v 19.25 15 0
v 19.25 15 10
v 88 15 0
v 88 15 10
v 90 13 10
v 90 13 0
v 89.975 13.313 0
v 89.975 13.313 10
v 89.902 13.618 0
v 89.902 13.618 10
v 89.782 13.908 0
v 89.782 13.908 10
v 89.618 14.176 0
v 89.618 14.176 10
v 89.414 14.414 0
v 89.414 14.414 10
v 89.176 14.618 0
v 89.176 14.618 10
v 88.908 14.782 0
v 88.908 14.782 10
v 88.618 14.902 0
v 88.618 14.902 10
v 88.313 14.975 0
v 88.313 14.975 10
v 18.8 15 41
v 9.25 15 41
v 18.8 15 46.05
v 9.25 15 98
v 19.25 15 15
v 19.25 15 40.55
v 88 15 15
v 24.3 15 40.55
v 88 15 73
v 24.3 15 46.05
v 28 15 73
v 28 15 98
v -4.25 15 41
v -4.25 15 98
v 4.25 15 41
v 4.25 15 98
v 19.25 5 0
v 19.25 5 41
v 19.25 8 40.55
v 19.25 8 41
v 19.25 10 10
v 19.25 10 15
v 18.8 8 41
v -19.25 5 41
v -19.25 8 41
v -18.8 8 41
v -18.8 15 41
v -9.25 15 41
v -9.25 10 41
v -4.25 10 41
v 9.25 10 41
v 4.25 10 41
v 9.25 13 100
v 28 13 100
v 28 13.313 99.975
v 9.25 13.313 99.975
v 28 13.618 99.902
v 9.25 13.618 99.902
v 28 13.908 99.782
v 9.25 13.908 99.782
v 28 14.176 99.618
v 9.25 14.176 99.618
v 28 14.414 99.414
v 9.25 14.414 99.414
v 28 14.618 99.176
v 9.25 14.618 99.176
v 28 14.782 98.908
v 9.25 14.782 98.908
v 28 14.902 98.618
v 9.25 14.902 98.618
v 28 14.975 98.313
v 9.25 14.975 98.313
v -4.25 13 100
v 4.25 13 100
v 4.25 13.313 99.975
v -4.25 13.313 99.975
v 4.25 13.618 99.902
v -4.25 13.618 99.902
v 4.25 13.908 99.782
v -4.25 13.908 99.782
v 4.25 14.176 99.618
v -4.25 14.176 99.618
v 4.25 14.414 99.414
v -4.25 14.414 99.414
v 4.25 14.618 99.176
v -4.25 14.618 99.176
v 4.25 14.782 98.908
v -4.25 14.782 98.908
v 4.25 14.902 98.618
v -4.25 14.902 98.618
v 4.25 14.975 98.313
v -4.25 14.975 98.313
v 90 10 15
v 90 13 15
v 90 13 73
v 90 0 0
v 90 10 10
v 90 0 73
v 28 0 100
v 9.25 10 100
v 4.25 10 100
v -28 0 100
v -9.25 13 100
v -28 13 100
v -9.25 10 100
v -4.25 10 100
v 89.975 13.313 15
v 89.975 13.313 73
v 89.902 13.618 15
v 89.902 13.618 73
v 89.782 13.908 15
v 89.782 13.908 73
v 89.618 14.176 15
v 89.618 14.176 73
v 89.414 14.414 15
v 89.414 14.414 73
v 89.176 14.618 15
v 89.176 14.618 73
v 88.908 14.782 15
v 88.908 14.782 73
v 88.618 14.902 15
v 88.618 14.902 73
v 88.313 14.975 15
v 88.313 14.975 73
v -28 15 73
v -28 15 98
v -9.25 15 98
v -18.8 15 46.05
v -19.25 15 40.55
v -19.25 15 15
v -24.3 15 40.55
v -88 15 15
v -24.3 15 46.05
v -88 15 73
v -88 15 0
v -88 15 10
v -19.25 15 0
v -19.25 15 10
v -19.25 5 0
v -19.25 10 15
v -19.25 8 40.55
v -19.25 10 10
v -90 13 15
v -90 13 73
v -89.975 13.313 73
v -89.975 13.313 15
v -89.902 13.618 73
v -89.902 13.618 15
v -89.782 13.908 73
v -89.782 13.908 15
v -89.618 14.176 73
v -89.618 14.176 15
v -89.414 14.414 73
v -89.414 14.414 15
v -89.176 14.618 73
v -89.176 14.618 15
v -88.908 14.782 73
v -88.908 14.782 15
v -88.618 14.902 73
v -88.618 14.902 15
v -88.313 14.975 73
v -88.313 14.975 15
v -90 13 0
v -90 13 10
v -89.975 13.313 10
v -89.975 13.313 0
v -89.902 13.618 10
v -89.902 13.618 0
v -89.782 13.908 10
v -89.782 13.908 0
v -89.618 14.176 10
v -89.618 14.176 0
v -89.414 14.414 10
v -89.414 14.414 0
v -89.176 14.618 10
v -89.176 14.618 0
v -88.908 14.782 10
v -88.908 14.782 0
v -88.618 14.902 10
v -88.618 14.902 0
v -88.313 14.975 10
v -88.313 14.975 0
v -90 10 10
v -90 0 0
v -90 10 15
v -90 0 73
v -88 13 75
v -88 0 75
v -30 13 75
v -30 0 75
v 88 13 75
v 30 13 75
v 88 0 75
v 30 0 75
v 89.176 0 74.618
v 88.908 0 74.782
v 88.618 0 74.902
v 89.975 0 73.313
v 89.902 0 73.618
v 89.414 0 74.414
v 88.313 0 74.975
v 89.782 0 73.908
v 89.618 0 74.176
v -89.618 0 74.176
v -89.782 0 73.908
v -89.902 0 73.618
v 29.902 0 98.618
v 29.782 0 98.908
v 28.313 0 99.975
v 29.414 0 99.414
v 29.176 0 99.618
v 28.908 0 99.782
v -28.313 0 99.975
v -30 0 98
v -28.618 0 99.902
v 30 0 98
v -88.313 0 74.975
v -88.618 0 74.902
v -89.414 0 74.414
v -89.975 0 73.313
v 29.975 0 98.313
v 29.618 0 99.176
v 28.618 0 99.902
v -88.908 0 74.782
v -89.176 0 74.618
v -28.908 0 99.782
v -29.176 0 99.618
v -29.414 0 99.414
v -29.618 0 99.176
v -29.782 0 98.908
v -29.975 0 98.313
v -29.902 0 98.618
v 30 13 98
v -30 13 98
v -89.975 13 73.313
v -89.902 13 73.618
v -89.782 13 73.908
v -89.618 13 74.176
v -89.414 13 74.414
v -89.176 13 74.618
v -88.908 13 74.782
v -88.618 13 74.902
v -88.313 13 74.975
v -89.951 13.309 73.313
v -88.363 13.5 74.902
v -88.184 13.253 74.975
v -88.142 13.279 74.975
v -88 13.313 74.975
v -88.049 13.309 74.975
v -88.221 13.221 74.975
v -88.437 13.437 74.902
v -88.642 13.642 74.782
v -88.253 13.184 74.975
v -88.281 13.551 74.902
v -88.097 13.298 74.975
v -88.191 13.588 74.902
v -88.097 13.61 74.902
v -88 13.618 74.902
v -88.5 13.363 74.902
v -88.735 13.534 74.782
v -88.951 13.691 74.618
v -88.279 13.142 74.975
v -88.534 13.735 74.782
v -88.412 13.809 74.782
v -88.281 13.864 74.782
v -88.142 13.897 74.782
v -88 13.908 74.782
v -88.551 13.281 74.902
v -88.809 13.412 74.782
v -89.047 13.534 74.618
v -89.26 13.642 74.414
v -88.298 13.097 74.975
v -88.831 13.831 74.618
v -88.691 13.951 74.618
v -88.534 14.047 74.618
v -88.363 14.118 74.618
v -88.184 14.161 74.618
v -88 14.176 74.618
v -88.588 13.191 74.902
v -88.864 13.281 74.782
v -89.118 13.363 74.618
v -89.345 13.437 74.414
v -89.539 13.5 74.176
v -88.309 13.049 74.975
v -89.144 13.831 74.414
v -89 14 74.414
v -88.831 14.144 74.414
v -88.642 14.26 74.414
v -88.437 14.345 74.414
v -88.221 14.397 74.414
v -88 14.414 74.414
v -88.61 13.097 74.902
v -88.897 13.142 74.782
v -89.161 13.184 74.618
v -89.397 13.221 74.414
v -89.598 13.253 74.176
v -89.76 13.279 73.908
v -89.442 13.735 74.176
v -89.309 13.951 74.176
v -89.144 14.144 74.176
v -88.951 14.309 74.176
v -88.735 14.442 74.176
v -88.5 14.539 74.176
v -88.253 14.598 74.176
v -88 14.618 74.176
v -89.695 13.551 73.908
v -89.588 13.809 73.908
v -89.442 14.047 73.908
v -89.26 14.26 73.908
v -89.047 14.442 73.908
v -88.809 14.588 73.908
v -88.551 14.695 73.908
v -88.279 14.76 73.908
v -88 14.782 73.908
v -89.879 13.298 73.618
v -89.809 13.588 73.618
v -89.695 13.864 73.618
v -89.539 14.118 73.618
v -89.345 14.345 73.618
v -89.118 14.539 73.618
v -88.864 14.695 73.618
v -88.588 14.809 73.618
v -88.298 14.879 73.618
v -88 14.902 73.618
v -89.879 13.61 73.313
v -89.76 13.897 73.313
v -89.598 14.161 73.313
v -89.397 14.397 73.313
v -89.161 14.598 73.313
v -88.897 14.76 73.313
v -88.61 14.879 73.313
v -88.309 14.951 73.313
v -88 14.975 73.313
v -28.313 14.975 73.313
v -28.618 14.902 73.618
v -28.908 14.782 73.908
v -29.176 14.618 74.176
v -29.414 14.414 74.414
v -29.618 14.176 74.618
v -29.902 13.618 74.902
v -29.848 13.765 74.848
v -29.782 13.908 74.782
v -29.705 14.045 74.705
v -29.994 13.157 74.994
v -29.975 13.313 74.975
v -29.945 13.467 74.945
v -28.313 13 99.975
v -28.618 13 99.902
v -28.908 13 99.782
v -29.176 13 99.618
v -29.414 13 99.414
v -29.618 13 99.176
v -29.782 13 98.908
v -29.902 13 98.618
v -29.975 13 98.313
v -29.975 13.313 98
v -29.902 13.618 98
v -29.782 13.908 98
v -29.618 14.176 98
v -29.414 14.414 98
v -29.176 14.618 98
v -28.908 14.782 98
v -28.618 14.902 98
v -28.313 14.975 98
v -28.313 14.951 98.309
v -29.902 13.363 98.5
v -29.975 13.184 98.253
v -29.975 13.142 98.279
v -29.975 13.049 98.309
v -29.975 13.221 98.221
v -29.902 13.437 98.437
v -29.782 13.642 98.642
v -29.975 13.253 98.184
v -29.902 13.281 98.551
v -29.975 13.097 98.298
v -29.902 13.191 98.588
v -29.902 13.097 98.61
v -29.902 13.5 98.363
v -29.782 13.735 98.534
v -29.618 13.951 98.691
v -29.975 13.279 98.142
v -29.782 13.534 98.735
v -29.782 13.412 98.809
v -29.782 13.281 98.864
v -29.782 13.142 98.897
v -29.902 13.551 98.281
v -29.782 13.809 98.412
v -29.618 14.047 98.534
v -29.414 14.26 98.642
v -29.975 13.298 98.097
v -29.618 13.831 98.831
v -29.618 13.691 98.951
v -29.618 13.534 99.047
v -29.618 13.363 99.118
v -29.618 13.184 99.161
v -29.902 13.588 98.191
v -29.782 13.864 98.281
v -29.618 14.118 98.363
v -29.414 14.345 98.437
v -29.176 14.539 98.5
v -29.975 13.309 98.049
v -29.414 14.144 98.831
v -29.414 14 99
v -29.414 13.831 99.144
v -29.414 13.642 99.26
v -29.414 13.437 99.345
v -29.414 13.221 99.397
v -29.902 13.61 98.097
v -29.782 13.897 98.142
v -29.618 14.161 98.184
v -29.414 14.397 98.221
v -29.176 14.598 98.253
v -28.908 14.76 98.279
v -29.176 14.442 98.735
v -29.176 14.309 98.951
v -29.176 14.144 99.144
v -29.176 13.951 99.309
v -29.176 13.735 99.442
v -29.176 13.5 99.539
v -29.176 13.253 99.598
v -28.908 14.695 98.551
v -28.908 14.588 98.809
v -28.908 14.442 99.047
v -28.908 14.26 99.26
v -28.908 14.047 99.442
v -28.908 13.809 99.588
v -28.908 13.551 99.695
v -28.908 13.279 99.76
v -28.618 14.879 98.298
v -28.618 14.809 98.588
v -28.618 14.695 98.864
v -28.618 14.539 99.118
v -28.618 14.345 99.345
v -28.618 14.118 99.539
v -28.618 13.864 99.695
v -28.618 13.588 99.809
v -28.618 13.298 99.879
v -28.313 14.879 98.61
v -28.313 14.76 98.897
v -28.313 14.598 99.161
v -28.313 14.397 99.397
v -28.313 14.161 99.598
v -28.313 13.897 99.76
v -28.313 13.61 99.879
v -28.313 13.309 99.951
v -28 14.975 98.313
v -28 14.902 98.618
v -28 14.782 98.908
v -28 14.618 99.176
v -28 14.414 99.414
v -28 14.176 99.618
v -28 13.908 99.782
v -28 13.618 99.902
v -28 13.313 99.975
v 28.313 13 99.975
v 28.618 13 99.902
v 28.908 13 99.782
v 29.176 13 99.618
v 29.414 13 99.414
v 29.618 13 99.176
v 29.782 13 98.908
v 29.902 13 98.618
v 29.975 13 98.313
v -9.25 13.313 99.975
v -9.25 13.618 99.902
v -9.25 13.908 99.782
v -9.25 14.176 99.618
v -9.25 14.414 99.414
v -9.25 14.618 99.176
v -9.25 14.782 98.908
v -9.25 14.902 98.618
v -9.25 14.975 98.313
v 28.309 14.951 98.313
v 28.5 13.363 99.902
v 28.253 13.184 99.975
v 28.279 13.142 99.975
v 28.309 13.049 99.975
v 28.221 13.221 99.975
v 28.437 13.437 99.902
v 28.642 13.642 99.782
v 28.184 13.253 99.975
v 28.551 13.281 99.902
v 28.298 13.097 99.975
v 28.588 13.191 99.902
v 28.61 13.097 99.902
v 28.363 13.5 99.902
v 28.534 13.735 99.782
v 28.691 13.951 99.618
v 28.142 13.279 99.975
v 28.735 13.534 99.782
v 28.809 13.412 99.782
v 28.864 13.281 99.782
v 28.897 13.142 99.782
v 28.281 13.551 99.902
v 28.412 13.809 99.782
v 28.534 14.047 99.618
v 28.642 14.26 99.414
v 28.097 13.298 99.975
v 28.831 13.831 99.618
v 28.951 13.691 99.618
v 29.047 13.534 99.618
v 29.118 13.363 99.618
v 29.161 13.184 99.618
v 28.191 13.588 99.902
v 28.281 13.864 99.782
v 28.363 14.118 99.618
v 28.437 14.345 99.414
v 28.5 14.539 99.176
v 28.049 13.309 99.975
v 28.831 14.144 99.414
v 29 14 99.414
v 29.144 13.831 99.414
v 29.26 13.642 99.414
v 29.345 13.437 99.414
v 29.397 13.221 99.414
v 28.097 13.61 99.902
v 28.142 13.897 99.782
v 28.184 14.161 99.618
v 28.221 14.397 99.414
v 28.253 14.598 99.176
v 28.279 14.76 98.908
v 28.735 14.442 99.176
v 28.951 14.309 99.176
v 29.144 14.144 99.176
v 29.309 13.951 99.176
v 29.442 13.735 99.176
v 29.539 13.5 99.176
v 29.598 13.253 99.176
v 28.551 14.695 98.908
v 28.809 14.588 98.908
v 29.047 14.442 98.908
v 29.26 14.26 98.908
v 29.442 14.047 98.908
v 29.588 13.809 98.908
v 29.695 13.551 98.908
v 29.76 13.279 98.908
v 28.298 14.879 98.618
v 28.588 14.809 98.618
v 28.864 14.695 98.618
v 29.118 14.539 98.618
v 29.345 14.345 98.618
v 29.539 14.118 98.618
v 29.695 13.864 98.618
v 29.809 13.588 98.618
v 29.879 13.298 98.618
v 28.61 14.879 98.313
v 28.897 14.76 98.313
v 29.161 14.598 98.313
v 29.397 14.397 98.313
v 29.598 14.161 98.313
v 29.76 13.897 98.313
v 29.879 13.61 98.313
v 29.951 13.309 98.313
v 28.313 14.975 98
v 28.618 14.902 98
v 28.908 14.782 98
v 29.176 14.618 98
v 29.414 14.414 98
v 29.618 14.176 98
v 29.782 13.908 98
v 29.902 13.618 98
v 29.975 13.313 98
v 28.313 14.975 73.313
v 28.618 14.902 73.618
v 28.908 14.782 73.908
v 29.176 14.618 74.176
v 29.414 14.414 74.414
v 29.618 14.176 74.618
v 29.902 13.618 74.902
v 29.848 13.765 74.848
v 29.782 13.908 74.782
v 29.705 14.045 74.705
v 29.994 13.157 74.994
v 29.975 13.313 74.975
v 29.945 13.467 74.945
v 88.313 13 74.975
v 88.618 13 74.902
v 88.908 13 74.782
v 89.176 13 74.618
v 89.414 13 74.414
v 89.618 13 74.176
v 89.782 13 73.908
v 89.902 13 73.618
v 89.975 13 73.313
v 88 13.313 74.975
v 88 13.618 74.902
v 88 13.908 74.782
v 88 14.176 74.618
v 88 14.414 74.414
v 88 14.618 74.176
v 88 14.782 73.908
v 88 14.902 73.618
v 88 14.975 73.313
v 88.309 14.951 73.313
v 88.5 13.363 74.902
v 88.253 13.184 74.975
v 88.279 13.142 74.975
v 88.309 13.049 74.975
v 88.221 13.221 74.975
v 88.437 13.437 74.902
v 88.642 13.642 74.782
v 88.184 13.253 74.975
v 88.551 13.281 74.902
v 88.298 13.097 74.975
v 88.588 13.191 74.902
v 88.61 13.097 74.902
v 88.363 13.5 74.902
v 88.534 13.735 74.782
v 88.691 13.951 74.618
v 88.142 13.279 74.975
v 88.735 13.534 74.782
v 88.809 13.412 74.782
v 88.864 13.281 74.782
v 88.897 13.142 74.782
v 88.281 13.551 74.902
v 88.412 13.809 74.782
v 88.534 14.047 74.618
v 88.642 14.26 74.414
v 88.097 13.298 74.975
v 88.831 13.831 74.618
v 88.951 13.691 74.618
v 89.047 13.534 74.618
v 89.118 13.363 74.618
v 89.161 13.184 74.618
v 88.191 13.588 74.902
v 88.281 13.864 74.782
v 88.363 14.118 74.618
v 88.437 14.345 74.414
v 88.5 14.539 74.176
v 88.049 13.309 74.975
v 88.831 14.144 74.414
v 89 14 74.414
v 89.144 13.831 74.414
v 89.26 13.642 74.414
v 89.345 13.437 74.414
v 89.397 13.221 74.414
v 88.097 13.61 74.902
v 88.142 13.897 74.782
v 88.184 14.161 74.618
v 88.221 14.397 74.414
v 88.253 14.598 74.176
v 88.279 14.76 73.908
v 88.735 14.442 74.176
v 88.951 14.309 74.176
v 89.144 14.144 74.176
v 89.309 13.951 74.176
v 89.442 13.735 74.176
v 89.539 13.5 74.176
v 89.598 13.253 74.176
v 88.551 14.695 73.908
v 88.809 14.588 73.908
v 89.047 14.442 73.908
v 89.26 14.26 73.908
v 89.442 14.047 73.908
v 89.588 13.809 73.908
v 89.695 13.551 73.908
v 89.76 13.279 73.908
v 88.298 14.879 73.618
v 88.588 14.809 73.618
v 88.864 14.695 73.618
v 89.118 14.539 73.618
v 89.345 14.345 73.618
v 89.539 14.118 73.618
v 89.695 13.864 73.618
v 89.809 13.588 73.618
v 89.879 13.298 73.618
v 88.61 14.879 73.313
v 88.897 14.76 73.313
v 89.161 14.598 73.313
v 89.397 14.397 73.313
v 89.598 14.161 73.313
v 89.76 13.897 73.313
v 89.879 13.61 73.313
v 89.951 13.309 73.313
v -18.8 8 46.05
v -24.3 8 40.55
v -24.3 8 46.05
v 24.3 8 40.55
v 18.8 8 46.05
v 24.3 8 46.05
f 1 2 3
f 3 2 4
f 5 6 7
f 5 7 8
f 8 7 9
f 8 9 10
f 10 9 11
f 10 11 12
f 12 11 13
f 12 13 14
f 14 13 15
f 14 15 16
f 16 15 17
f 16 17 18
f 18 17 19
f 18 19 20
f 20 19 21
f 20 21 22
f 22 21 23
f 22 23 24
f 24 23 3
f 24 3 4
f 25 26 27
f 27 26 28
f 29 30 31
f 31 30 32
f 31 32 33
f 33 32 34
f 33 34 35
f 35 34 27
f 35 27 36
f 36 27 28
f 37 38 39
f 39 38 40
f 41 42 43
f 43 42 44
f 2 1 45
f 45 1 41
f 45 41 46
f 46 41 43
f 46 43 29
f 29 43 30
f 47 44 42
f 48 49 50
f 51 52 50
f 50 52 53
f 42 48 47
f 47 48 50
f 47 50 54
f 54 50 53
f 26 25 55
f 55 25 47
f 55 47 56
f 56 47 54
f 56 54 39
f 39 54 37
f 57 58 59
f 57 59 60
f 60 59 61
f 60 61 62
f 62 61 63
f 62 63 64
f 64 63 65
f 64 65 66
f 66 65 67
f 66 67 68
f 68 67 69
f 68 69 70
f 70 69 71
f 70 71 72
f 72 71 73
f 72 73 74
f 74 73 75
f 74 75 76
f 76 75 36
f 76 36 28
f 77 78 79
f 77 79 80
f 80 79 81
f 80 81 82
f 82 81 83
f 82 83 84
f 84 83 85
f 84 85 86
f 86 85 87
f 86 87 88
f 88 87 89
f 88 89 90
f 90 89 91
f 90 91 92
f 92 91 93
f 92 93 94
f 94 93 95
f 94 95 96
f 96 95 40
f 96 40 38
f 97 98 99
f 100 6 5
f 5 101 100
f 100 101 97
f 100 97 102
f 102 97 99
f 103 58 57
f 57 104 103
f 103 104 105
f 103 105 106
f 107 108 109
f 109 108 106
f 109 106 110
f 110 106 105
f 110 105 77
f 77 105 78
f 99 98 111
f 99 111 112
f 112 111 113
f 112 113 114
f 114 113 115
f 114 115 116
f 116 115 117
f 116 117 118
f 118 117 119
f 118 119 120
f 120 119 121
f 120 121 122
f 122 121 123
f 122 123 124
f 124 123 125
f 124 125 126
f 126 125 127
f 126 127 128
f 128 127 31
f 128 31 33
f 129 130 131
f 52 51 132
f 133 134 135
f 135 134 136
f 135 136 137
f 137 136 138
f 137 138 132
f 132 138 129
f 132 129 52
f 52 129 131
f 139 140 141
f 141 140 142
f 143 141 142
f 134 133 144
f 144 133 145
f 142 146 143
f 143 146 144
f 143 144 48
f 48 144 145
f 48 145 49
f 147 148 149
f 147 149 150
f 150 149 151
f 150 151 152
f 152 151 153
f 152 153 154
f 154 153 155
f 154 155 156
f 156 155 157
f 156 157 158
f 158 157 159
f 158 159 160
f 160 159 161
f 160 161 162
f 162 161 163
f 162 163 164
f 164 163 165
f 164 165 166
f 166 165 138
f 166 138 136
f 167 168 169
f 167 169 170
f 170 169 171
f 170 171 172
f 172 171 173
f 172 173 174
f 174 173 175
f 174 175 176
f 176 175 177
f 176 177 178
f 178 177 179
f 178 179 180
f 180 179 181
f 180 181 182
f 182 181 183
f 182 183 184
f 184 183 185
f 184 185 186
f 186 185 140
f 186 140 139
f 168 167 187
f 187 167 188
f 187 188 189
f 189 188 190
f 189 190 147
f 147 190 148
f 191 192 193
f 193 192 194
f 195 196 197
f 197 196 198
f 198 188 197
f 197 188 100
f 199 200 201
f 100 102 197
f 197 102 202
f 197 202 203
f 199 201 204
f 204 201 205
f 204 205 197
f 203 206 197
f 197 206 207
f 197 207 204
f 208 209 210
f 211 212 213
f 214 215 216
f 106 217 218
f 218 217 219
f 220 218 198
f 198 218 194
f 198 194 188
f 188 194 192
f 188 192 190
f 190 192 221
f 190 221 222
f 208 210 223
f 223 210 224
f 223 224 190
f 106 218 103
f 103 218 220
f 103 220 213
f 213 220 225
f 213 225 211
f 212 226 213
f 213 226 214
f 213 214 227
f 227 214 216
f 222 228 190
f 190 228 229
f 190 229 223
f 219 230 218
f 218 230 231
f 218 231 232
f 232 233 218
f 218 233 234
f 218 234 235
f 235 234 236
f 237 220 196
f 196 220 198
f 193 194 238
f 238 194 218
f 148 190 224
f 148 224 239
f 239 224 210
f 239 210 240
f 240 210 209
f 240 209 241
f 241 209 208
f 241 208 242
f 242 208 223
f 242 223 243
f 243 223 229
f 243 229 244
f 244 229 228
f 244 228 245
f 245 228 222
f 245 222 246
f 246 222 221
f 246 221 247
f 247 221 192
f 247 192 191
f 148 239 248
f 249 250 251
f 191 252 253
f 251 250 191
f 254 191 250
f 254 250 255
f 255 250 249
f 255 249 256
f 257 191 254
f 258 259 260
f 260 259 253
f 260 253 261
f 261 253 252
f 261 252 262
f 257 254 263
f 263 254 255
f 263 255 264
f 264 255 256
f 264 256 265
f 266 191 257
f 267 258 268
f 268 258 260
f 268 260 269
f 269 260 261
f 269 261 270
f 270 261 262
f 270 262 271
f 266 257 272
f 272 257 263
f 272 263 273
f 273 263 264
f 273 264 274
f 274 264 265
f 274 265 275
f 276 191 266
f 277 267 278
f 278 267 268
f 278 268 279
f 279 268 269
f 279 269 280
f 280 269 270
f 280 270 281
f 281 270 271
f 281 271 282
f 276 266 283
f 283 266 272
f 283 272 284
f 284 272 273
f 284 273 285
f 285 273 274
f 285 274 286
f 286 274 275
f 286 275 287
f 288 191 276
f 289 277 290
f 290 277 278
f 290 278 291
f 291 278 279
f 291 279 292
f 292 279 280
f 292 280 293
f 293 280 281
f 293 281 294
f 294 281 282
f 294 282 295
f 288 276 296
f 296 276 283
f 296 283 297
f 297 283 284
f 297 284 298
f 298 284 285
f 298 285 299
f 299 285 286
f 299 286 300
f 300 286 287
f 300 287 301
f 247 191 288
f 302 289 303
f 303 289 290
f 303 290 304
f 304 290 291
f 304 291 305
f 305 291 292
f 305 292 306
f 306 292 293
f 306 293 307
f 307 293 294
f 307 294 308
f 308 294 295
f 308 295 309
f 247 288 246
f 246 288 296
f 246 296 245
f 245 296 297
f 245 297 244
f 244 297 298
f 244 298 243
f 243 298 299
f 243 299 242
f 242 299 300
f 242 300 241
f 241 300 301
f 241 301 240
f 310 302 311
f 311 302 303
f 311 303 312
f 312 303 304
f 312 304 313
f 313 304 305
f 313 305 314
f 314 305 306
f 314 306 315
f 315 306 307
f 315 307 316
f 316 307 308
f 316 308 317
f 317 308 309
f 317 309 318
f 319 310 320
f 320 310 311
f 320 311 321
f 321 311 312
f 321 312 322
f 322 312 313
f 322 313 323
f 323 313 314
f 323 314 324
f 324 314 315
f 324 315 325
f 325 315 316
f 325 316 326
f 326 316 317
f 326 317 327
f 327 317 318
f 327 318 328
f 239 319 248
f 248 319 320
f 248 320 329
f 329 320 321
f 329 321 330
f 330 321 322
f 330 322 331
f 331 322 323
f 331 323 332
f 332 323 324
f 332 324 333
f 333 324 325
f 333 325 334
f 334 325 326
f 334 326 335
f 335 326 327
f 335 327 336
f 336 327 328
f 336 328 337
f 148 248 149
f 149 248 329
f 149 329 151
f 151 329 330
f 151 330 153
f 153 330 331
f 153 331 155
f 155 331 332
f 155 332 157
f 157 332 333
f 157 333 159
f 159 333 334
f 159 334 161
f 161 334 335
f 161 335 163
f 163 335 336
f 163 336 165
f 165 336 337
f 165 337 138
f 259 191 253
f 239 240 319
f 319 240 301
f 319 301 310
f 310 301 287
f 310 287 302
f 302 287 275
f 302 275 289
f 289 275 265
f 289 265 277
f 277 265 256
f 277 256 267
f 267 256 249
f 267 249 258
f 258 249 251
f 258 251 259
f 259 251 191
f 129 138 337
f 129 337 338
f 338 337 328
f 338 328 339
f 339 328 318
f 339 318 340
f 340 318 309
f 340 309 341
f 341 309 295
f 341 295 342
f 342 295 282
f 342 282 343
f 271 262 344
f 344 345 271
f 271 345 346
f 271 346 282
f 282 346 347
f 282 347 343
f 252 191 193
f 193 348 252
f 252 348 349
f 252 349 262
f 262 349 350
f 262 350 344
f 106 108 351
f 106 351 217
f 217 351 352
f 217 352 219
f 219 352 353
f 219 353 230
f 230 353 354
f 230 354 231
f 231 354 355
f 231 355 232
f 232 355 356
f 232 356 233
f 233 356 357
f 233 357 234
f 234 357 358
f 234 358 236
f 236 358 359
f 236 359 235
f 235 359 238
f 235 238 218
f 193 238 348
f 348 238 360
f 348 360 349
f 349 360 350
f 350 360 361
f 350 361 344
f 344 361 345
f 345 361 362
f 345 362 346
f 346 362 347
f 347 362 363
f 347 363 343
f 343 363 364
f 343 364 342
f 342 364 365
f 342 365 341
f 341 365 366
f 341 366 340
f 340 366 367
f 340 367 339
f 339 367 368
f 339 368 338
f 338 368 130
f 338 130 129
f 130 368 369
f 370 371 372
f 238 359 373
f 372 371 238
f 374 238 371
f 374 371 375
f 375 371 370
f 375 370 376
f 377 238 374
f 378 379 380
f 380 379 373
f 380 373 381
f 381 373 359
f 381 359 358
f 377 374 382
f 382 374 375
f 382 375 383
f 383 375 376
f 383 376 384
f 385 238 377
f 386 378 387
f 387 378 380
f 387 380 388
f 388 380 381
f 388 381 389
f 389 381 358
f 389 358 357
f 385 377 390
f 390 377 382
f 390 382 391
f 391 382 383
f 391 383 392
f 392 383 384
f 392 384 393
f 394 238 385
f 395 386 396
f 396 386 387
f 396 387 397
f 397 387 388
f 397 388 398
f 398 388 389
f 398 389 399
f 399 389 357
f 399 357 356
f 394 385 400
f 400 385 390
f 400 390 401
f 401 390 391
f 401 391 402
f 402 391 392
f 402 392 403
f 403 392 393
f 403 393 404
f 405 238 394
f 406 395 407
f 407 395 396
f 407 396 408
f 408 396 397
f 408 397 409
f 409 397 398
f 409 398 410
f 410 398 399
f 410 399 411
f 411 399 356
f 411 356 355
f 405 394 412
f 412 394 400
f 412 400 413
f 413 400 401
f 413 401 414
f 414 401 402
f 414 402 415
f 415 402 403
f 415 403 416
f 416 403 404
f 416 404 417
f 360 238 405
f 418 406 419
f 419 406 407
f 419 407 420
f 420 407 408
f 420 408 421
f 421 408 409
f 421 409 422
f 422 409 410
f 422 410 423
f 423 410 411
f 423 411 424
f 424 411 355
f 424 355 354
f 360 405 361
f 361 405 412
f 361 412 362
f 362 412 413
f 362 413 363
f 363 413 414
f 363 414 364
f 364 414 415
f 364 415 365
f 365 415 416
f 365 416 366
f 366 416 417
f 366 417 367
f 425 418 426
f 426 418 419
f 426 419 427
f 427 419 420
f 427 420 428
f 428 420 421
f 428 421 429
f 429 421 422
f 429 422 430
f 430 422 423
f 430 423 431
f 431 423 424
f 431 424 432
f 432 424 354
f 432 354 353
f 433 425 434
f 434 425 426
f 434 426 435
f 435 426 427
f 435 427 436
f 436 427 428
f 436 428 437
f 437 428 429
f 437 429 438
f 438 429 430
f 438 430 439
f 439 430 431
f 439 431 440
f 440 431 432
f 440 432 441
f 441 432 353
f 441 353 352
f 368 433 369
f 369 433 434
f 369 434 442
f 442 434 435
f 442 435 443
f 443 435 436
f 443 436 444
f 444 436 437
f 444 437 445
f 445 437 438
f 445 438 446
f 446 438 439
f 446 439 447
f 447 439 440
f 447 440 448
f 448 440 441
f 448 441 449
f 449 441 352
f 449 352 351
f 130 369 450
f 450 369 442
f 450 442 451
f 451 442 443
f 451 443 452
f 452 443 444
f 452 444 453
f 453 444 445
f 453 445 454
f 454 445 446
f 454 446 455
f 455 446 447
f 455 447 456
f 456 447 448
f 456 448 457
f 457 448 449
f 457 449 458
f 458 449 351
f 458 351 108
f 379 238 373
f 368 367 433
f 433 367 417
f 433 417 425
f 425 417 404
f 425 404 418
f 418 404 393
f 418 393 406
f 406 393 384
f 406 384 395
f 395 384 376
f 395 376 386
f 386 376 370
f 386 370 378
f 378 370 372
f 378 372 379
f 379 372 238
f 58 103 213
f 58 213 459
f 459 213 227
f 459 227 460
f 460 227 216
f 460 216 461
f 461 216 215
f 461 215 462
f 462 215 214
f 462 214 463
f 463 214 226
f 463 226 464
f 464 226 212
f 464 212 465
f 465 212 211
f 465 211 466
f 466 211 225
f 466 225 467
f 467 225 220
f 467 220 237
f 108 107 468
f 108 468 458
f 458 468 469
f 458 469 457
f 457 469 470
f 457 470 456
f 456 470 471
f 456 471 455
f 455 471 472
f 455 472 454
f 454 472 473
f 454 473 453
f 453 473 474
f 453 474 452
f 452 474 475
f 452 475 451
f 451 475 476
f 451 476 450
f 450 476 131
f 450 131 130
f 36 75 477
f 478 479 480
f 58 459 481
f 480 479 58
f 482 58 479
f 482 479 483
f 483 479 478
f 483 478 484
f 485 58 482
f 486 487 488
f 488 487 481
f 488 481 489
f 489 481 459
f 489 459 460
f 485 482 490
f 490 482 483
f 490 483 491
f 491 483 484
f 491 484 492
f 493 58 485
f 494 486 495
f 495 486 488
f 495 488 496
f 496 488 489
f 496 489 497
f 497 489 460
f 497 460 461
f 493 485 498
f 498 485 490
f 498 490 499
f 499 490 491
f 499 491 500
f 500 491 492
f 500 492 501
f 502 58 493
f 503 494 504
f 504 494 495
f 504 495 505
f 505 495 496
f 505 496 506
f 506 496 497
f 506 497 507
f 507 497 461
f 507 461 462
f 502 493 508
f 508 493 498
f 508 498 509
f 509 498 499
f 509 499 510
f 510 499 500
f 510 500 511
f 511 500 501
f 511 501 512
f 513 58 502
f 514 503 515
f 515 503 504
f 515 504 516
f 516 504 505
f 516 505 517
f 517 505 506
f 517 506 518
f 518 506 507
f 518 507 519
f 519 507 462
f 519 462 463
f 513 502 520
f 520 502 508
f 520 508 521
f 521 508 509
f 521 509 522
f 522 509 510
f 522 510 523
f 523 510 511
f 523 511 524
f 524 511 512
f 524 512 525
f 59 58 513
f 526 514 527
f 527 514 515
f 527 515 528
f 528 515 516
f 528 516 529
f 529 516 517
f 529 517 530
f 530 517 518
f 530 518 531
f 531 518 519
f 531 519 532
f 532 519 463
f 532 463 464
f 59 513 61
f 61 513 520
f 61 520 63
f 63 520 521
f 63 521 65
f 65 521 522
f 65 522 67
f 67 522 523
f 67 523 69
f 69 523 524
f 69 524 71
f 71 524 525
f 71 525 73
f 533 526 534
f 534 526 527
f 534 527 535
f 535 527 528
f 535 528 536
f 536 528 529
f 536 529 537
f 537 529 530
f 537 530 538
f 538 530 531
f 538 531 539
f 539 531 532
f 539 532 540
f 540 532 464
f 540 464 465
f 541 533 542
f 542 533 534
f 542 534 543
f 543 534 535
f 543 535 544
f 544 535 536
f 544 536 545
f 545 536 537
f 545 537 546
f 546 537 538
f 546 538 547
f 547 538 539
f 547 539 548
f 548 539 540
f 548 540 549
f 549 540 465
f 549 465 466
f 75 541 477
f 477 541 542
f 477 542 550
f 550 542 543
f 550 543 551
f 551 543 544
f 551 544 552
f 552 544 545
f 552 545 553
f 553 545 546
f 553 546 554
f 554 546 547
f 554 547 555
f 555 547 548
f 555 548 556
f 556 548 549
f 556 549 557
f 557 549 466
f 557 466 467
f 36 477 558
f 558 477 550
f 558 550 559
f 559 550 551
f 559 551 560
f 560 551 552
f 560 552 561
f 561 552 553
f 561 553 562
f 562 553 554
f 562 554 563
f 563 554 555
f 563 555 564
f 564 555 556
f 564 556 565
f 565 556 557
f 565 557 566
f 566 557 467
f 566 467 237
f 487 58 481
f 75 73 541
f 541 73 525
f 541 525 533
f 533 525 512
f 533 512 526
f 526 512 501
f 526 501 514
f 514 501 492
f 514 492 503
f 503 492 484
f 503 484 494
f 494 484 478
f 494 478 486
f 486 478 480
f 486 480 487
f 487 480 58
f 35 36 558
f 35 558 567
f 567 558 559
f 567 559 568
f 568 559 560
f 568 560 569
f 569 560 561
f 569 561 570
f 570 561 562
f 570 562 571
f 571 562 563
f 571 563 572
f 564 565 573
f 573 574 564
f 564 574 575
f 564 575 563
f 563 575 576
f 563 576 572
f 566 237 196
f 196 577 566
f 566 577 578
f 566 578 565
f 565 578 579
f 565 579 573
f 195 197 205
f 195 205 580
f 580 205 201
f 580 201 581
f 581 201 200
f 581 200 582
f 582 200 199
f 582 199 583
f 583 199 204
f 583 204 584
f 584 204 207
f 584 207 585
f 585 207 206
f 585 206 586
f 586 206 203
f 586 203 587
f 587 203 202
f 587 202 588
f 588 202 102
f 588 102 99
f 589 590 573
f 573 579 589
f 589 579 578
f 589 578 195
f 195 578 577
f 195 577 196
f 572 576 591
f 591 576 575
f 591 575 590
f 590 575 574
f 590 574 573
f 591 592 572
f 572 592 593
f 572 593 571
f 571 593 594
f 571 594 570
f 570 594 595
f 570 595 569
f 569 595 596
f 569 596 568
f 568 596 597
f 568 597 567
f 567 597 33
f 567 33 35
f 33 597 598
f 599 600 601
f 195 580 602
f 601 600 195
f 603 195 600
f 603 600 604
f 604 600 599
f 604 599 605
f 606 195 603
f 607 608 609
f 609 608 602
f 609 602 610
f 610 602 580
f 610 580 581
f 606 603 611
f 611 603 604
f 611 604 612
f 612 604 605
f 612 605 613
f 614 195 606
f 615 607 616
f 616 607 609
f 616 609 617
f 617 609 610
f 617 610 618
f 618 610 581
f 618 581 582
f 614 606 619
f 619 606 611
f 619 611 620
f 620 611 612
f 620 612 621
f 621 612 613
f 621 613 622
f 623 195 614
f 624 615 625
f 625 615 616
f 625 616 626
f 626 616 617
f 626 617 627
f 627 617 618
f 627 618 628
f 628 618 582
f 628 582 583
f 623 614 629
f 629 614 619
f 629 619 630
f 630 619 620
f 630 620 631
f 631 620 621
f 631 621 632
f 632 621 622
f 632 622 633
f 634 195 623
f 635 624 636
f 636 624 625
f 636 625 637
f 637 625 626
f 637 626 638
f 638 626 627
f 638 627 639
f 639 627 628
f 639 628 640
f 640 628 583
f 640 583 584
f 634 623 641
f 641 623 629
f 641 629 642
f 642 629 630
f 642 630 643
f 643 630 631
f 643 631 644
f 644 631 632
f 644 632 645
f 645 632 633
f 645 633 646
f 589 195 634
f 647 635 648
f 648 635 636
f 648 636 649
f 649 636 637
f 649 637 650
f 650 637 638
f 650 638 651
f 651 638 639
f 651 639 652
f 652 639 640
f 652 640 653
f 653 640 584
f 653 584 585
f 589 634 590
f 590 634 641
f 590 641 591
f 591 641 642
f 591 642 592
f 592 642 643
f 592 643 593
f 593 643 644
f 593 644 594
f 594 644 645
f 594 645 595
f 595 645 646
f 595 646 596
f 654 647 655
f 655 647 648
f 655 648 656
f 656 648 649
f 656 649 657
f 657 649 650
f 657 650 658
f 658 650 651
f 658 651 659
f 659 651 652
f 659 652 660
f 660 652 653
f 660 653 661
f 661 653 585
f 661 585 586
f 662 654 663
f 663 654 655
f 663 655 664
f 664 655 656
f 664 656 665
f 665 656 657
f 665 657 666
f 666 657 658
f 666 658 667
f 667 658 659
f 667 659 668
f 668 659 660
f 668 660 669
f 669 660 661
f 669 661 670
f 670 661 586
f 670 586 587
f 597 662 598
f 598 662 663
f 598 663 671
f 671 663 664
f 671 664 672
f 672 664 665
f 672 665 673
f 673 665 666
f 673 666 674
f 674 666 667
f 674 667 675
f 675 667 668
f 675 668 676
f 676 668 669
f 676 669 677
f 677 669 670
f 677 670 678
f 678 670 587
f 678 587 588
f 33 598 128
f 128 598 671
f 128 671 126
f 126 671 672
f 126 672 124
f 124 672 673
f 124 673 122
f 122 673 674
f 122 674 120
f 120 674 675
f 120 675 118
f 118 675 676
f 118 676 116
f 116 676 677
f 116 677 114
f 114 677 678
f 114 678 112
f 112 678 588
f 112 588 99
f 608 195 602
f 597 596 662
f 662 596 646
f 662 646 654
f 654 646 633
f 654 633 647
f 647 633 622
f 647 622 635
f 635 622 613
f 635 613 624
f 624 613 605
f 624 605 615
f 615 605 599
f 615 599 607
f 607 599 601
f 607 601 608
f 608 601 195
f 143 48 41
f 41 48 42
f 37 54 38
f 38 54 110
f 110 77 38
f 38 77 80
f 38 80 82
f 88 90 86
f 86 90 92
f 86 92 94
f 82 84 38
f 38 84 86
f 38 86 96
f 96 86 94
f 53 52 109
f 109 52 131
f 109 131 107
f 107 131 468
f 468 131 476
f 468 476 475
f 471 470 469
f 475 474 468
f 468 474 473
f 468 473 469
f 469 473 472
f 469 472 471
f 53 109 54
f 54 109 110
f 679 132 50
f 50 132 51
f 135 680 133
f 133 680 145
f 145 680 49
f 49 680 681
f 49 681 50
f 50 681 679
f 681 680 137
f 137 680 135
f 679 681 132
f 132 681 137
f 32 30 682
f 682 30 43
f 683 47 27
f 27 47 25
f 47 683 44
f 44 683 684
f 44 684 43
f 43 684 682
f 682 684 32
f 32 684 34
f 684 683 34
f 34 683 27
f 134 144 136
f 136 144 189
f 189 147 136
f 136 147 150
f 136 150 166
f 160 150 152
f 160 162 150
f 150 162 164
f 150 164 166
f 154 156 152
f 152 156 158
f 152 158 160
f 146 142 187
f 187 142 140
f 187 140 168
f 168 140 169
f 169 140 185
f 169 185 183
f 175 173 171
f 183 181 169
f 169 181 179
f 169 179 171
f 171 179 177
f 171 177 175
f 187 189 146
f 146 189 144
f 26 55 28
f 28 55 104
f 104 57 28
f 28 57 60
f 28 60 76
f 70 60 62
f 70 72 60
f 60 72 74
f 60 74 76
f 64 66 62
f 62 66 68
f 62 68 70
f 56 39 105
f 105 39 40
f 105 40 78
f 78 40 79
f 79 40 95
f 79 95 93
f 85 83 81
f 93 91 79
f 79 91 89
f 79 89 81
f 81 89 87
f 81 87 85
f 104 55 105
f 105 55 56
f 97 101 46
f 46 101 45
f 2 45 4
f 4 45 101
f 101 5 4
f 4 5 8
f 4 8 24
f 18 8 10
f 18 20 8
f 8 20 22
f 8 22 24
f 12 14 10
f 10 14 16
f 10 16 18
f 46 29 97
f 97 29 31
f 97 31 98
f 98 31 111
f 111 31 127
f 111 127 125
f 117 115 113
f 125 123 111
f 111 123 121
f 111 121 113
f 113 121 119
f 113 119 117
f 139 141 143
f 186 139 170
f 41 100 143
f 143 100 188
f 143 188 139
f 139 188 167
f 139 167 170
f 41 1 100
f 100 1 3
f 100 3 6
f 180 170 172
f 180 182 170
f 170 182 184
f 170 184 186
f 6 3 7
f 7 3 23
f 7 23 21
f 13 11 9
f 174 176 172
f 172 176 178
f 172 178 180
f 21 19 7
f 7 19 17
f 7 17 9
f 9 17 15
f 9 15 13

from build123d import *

# Parameters (mm, degrees)
SKETCH1_W                                  = 180
SKETCH1_H                                  = 150
BOSS_EXTRUDE1_DEPTH                        = 15
SKETCH7_W                                  = 60
SKETCH7_H                                  = 25
BOSS_EXTRUDE6_DEPTH                        = 15
FILLET1_R                                  = 2
SKETCH2_W                                  = 38.5
SKETCH2_H                                  = 82
CUT_EXTRUDE1_DEPTH                         = 10
CUT_EXTRUDE3_DEPTH                         = 5
SKETCH11_W                                 = 5.5
SKETCH11_H                                 = 5.5
CUT_EXTRUDE6_DEPTH                         = 7
MIRROR3_AT_THE_SECOND_PLANE_COPY_1_SKETC_W = 5.5
MIRROR3_AT_THE_SECOND_PLANE_COPY_1_SKETC_H = 5.5
MIRROR3_AT_THE_SECOND_PLANE_COPY_1_DEPTH   = 7
MIRROR4_AT_THE_SECOND_PLANE_COPY_1_DEPTH   = 5
SKETCH12_W                                 = 194.678765725
SKETCH12_H                                 = 23.459831827
CUT_EXTRUDE7_DEPTH                         = 136.369863707


with BuildPart() as part:
    # Sketch1 → Boss-Extrude1 (new body)
    with BuildSketch(Plane(origin=(0, 0, 0), x_dir=(1, 0, 0), z_dir=(0, 1, 0))):
        Rectangle(SKETCH1_W, SKETCH1_H)
    extrude(amount=BOSS_EXTRUDE1_DEPTH)

    # Sketch7 → Boss-Extrude6 (add)
    with BuildSketch(Plane(origin=(0, 0, 0), x_dir=(1, 0, 0), z_dir=(0, 1, 0))):
        with Locations((0, -87.5)):
            Rectangle(SKETCH7_W, SKETCH7_H)
        with Locations((0, 87.5)):
            Rectangle(SKETCH7_W, SKETCH7_H)
    extrude(amount=BOSS_EXTRUDE6_DEPTH)

    # Fillet1
    fillet1_edges = [part.edges().sort_by_distance(p)[0] for p in [
        (-90, 15, 0),
        (60, 15, 75),
        (-60, 15, 75),
        (-30, 7.5, 100),
        (30, 7.5, 100),
        (-30, 15, 87.5),
        (0, 15, 100),
        (30, 15, 87.5),
        (-60, 15, -75),
        (0, 15, -100),
        (30, 7.5, -100),
        (-30, 15, -87.5),
        (-30, 7.5, -100),
        (30, 15, -87.5),
        (90, 15, 0),
        (90, 7.5, 75),
        (-90, 7.5, 75),
        (-90, 7.5, -75),
        (90, 7.5, -75),
        (60, 15, -75),
    ]]
    fillet(fillet1_edges, radius=FILLET1_R)

    # Sketch2 → Cut-Extrude1 (cut)
    with BuildSketch(Plane(origin=(0, 15, 0), x_dir=(1, 0, 0), z_dir=(0, 1, 0))):
        Rectangle(SKETCH2_W, SKETCH2_H)
    extrude(amount=-CUT_EXTRUDE1_DEPTH, mode=Mode.SUBTRACT)

    # Sketch10 → Cut-Extrude3 (cut)
    with BuildSketch(Plane(origin=(0, 15, 0), x_dir=(1, 0, 0), z_dir=(0, 1, 0))):
        Polygon((-9.25, -40.5), (-9.25, -33.162899401), (-4.25, -33.162899401), (-4.25, -40.5), (-4.25, -105.687952047), (-9.25, -105.687952047), align=None)
        Polygon((-99.022946063, 15), (-19.25, 15), (-11.555108838, 15), (-11.555108838, 10), (-19.25, 10), (-99.022946063, 10), align=None)
    cut_extrude3 = extrude(amount=-CUT_EXTRUDE3_DEPTH, mode=Mode.SUBTRACT)

    # Sketch11 → Cut-Extrude6 (cut)
    with BuildSketch(Plane(origin=(0, 15, 0), x_dir=(1, 0, 0), z_dir=(0, 1, 0))):
        with Locations((-21.549732367, 43.299732367)):
            Rectangle(SKETCH11_W, SKETCH11_H)
    cut_extrude6 = extrude(amount=-CUT_EXTRUDE6_DEPTH, mode=Mode.SUBTRACT)

    # Mirror3: Cut-Extrude6 across plane
    add(cut_extrude6.mirror(Plane(origin=(0, 0, 0), x_dir=(0, 0, 1), z_dir=(1, 0, 0))), mode=Mode.SUBTRACT)

    # Mirror3 at the second plane: Cut-Extrude6 across plane
    add(cut_extrude6.mirror(Plane.XY), mode=Mode.SUBTRACT)

    # Mirror3 at the second plane copy 1 sketc → Mirror3 at the second plane copy 1 (cut)
    with BuildSketch(Plane(origin=(0, 15, 0), x_dir=(-1, 0, 0), z_dir=(0, 1, 0))):
        with Locations((-21.549732367, 43.299732367)):
            Rectangle(MIRROR3_AT_THE_SECOND_PLANE_COPY_1_SKETC_W, MIRROR3_AT_THE_SECOND_PLANE_COPY_1_SKETC_H)
    extrude(amount=-MIRROR3_AT_THE_SECOND_PLANE_COPY_1_DEPTH, mode=Mode.SUBTRACT)

    # Mirror4: Cut-Extrude3 across plane
    add(cut_extrude3.mirror(Plane(origin=(0, 0, 0), x_dir=(0, 0, 1), z_dir=(1, 0, 0))), mode=Mode.SUBTRACT)

    # Mirror4 at the second plane: Cut-Extrude3 across plane
    add(cut_extrude3.mirror(Plane.XY), mode=Mode.SUBTRACT)

    # Mirror4 at the second plane copy 1 sketc → Mirror4 at the second plane copy 1 (cut)
    with BuildSketch(Plane(origin=(0, 15, 0), x_dir=(-1, 0, 0), z_dir=(0, 1, 0))):
        Polygon((-9.25, -40.5), (-9.25, -33.162899401), (-4.25, -33.162899401), (-4.25, -40.5), (-4.25, -105.687952047), (-9.25, -105.687952047), align=None)
        Polygon((-99.022946063, 15), (-19.25, 15), (-11.555108838, 15), (-11.555108838, 10), (-19.25, 10), (-99.022946063, 10), align=None)
    extrude(amount=-MIRROR4_AT_THE_SECOND_PLANE_COPY_1_DEPTH, mode=Mode.SUBTRACT)

    # Sketch12 → Cut-Extrude7 (cut, through all)
    with BuildSketch(Plane.XY):
        with Locations((1.797325826, 6.648635136)):
            Rectangle(SKETCH12_W, SKETCH12_H)
    extrude(amount=-CUT_EXTRUDE7_DEPTH, mode=Mode.SUBTRACT)


solid = part.part
